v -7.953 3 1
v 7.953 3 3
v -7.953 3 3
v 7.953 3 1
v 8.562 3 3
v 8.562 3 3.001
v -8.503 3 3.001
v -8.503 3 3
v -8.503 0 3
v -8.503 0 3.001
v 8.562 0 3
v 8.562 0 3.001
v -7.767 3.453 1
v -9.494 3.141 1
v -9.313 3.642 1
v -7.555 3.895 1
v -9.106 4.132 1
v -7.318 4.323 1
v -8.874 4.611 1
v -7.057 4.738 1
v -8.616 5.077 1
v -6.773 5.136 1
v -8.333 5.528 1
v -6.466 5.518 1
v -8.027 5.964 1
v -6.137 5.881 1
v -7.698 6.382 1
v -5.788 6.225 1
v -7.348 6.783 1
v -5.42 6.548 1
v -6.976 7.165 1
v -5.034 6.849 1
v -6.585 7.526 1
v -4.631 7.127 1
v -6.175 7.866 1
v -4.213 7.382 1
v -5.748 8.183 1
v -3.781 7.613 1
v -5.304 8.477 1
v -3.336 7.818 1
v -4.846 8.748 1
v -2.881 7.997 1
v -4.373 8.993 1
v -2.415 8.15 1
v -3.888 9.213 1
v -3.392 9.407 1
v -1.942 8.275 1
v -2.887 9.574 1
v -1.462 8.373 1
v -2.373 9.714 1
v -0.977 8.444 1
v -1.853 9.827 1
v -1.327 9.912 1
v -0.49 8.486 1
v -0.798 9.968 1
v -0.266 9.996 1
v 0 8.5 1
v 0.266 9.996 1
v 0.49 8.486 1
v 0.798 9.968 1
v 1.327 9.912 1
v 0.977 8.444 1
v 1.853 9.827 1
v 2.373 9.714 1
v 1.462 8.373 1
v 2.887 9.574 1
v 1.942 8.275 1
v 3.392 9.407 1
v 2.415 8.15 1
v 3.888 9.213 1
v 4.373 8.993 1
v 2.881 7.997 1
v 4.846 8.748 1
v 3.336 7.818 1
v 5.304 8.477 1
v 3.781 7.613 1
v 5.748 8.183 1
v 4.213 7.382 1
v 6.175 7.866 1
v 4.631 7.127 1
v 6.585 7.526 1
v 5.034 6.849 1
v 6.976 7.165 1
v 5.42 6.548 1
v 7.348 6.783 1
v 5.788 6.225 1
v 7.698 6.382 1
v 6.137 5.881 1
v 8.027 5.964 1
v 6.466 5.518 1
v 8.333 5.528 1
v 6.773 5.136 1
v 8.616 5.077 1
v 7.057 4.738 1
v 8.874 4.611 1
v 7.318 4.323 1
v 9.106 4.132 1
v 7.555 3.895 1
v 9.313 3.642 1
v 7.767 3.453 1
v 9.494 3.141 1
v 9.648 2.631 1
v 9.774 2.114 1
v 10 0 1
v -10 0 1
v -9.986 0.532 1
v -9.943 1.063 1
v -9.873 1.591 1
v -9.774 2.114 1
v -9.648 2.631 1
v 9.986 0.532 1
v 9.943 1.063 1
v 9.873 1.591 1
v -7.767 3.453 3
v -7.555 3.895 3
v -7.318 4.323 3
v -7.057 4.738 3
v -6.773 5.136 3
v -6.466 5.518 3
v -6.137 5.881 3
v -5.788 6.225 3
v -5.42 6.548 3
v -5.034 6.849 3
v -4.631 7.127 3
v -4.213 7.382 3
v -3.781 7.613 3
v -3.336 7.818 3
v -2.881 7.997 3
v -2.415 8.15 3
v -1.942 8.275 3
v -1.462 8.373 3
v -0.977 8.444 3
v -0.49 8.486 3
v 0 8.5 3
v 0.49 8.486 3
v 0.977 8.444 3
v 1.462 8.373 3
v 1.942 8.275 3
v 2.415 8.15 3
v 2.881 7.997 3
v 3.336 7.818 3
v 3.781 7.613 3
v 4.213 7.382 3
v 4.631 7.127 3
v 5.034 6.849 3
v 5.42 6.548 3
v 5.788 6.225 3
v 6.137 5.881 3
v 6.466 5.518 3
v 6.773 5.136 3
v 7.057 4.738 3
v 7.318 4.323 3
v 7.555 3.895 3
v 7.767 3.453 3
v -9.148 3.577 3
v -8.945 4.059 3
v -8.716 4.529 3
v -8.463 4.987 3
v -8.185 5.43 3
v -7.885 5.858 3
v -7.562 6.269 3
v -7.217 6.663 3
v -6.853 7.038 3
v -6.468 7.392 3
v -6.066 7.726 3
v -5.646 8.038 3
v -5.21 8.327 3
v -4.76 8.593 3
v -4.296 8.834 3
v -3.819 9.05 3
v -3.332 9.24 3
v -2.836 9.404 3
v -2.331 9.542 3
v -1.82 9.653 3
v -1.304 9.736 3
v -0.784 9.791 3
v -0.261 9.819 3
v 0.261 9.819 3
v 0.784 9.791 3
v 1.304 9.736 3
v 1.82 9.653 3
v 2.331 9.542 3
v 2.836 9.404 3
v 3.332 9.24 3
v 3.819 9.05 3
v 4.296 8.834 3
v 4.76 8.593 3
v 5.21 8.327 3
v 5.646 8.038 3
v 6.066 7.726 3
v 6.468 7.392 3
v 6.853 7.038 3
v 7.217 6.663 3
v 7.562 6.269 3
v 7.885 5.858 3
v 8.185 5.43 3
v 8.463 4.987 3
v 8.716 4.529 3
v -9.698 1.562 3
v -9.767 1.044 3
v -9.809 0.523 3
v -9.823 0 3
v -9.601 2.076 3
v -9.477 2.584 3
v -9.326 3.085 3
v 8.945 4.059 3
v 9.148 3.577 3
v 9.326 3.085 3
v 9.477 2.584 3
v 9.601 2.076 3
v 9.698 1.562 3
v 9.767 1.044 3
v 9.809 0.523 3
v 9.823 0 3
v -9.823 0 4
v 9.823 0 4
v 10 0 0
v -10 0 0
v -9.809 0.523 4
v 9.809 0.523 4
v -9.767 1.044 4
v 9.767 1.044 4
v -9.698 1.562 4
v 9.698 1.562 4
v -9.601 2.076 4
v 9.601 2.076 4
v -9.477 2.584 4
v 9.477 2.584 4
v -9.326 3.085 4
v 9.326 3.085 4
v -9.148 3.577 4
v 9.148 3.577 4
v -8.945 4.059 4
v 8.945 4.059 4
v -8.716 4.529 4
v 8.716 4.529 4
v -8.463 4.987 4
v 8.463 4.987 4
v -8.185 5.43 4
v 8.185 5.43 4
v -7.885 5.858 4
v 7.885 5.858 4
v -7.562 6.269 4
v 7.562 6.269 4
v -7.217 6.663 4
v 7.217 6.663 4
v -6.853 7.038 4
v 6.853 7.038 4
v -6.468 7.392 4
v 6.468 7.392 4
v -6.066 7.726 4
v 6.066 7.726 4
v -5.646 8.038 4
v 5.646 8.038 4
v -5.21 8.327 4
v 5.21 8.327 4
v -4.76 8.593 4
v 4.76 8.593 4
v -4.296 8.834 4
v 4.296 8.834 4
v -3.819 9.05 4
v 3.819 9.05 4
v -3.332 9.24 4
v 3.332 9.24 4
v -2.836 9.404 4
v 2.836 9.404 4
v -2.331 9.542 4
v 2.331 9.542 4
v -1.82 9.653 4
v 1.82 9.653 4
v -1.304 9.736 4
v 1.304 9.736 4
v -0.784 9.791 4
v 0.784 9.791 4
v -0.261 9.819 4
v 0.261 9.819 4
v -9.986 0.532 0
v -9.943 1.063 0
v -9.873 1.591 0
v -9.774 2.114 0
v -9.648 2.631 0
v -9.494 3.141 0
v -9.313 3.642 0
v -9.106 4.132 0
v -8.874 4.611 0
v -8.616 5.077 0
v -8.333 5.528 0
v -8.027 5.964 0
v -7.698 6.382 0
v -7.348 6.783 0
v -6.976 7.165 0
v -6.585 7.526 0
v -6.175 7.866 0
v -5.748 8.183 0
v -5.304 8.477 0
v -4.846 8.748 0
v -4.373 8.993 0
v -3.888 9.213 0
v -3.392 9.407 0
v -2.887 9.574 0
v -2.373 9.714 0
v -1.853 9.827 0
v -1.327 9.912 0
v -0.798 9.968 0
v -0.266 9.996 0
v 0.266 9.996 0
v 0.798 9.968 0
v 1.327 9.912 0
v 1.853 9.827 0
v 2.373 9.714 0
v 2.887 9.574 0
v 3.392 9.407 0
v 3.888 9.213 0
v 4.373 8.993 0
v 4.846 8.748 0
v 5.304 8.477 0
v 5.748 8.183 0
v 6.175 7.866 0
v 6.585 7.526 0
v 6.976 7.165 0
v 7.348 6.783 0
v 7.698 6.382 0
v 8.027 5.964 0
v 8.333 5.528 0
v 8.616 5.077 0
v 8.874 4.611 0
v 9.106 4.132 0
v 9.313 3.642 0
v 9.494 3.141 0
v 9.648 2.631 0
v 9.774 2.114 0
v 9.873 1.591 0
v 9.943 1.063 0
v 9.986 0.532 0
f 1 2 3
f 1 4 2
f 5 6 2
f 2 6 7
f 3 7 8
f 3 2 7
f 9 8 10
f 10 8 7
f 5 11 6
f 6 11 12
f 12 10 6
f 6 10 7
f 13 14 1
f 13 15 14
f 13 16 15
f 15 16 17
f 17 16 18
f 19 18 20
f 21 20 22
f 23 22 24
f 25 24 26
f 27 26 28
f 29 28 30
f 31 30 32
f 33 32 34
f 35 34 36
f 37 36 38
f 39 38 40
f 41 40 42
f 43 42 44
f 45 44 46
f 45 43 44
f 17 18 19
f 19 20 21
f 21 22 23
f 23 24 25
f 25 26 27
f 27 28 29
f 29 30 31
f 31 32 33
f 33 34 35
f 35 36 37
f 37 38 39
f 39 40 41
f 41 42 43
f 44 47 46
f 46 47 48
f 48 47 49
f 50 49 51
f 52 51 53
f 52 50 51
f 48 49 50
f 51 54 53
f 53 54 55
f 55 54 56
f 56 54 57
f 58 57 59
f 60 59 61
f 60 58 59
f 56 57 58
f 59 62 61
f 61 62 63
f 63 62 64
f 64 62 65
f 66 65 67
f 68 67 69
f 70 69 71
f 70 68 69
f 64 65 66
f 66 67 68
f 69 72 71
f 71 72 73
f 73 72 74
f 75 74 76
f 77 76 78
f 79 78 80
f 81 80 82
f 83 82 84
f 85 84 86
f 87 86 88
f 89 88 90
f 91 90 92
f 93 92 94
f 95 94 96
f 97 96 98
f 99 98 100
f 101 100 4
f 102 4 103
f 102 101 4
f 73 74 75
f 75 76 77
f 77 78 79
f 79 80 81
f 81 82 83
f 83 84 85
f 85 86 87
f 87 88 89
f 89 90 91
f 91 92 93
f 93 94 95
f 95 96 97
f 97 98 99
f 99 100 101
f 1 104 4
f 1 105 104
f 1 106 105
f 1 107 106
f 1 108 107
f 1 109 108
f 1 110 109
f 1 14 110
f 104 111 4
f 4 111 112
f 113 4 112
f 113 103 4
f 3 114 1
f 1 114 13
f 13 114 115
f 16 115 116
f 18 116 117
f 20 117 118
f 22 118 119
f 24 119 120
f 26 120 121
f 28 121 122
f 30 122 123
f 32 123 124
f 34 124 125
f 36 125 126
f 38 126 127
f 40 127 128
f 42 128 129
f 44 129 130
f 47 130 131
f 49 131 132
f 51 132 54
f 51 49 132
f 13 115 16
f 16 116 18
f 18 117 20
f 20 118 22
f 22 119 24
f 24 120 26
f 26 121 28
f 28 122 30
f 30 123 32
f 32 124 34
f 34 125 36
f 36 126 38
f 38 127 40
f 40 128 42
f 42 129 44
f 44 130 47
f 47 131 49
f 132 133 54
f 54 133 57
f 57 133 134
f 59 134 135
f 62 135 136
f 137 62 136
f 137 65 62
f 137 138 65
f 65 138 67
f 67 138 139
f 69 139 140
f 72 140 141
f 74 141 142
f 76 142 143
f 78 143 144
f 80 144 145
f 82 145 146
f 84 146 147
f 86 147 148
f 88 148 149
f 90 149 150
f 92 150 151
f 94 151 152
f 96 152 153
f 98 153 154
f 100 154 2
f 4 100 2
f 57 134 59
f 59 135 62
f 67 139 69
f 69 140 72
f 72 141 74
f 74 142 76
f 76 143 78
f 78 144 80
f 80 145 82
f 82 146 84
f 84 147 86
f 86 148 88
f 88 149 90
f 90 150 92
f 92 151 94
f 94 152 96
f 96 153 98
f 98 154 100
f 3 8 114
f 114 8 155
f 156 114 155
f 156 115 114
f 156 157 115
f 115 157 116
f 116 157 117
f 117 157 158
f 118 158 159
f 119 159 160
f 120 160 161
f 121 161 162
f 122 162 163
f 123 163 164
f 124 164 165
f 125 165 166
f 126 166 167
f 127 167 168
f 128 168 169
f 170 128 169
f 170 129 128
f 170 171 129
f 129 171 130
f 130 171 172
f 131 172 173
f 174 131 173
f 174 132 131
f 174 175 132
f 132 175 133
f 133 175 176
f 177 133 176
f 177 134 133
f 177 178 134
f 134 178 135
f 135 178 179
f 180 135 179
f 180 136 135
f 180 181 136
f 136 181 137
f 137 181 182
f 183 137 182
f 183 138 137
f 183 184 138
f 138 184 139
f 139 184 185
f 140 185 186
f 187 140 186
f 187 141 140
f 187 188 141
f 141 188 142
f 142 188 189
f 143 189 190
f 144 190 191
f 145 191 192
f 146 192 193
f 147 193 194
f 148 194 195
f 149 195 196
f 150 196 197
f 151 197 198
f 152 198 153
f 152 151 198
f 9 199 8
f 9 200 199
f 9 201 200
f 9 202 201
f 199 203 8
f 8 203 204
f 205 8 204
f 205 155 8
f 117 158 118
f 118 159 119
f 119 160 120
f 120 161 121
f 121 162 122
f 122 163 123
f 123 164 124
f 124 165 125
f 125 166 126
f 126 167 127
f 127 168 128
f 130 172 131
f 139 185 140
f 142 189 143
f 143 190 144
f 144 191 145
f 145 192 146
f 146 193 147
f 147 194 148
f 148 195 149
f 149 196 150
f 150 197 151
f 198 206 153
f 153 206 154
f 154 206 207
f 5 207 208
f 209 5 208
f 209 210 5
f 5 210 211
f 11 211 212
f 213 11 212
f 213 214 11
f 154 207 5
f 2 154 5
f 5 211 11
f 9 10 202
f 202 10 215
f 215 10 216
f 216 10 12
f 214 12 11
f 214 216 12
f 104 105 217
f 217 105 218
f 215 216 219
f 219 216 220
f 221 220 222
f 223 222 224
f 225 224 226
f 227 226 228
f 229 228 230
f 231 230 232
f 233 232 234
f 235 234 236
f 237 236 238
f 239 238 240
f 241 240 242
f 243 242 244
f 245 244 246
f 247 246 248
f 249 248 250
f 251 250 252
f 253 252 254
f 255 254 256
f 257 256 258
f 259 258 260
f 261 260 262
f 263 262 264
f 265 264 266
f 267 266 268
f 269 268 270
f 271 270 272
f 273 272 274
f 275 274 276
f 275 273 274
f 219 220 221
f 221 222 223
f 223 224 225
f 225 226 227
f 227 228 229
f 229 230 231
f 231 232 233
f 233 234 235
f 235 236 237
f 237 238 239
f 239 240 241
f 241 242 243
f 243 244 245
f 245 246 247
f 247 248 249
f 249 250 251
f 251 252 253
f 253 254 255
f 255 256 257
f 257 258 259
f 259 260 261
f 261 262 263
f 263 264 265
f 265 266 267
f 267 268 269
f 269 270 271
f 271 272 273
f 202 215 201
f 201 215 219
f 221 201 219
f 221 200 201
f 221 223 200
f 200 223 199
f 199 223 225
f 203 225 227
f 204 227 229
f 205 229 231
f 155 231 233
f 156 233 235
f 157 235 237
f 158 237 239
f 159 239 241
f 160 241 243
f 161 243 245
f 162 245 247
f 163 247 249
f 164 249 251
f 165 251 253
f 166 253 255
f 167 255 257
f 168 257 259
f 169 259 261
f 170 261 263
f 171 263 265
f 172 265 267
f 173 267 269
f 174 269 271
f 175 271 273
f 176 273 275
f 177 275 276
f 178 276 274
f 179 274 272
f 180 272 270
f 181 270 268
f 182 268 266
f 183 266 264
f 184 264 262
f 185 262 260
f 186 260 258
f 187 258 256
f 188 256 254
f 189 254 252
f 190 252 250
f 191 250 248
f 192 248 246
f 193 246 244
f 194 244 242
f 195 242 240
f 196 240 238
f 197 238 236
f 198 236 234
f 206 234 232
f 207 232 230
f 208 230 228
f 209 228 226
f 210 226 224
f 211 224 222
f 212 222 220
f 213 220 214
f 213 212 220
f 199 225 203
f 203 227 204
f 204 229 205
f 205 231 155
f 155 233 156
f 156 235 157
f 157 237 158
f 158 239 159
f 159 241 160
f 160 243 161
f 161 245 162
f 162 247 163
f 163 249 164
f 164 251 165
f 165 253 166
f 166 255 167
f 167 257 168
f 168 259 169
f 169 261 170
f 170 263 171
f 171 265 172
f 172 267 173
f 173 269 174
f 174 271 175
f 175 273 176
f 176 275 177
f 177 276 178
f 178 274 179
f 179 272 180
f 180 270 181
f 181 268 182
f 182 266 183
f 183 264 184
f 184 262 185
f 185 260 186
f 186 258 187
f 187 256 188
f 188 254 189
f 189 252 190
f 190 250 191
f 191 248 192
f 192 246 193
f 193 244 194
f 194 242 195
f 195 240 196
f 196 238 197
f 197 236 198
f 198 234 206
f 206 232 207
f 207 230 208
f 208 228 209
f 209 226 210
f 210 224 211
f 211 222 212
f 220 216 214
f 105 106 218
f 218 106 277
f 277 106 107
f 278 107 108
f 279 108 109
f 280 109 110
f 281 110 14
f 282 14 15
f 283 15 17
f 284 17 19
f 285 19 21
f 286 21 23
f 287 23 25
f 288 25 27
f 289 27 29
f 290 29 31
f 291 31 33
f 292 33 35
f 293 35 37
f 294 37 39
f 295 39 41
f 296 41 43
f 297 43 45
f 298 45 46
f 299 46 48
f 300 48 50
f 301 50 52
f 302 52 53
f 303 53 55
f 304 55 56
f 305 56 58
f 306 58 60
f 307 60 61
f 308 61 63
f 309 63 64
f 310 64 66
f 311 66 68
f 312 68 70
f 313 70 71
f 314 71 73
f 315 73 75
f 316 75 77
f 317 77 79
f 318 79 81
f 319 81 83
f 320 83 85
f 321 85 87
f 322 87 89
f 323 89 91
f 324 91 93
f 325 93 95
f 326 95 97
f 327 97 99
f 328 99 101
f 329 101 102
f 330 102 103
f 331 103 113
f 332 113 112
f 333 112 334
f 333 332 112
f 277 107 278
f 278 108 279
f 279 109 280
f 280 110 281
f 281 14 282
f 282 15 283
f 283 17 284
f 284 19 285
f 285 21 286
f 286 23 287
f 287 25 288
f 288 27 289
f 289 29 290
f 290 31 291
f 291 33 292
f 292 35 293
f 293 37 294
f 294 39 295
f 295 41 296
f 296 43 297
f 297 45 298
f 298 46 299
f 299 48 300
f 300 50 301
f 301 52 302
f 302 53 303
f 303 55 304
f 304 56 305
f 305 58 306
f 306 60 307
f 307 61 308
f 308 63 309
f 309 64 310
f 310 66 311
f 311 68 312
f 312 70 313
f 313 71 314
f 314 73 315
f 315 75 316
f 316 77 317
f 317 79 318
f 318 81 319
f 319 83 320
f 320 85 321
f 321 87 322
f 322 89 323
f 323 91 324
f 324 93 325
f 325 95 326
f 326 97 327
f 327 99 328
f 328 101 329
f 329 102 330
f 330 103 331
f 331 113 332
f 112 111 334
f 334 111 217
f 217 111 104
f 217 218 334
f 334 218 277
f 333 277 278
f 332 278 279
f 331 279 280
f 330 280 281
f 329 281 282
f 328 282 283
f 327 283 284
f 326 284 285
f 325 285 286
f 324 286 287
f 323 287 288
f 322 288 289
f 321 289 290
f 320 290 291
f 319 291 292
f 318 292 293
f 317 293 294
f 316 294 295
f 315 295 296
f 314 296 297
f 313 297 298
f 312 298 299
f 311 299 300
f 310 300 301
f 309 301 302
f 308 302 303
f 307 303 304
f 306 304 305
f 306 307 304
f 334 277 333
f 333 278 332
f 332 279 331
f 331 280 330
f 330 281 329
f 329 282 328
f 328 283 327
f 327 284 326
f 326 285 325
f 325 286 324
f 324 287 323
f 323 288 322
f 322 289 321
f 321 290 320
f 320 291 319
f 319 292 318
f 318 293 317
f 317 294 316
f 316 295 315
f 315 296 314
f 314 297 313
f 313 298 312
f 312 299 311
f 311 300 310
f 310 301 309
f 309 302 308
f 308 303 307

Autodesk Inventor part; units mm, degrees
ref_plane "YZ Plane" through (0, 0, 0) normal (1, 0, 0) x (0, 1, 0)
ref_plane "XZ Plane" through (0, 0, 0) normal (0, 1, 0) x (-1, 0, 0)
ref_plane "XY Plane" through (0, 0, 0) normal (0, 0, 1) x (1, 0, 0)
sketch "Sketch1" plane through (0, 0, 0) normal (0, 0, 1) x (1, 0, 0)
  circle A0 centre (0, 0) radius 10
  dimension "d0" = 20
extrude "Extrusion1" add sketch "Sketch1" along normal blind 1
sketch "Sketch2" plane through (0, 0, 1) normal (0, 0, 1) x (1, 0, 0)
  circle A0 centre (0, 0) radius 8.5
  dimension "d3" = 17
extrude "Extrusion2" add sketch "Sketch2" along normal blind 2
sketch "Sketch3" plane through (0, 0, 3) normal (0, 0, 1) x (1, 0, 0)
  circle A0 centre (0, 0) radius 9.8227
extrude "Extrusion3" add sketch "Sketch3" along normal blind 1
sketch "Sketch4" plane through (0, 0, 4) normal (0, 0, 1) x (1, 0, 0)
  circle A0 centre (0, 0) radius 4.5
  line L0 (-3.25, 1.75) -> (3.25, 1.75)
  line L1 (3.25, 1.75) -> (3.25, -1.75)
  line L2 (3.25, -1.75) -> (-3.25, -1.75)
  line L3 (-3.25, -1.75) -> (-3.25, 1.75)
  dimension "d8" = 9
  dimension "d9" = 3.5
  dimension "d10" = 6.5
  dimension "d11" = 1.75
  dimension "d12" = 3.25
extrude "Extrusion4" add sketch "Sketch4" along normal blind 7
sketch "Sketch5" plane through (0, 0, 0) normal (0, 0, -1) x (-1, 0, 0)
  point P0 (0, 0)
sketch "Sketch6" plane through (0, 0, 11) normal (0, 0, 1) x (1, 0, 0)
  circle A0 centre (0, 0) radius 4.5
extrude "Extrusion5" cut sketch "Sketch6" against normal blind 7
sketch "Sketch7" plane through (0, 0, 4) normal (0, 0, 1) x (1, 0, 0)
  line L0 (-13.328, 0) -> (12.5041, 0)
  line L1 (12.5041, 0) -> (12.5041, -10.2387)
  line L2 (12.5041, -10.2387) -> (-13.328, -10.2387)
  line L3 (-13.328, -10.2387) -> (-13.328, 0)
  point P0 (0, 0)
extrude "Extrusion6" cut sketch "Sketch7" against normal blind 10
sketch "Sketch8" plane through (-9.8227, 0, 4) normal (0, -1, 0) x (1, 0, 0)
  line L0 (19.8227, -3) -> (-0.1773, -3) projected
  line L1 (1.3199, -0.999) -> (18.3844, -0.999)
  line L2 (18.3844, -0.999) -> (18.3844, -3)
  line L3 (18.3844, -3) -> (1.3199, -3)
  line L4 (1.3199, -3) -> (1.3199, -0.999)
  point P0 (9.8227, -4)
extrude "Extrusion7" cut sketch "Sketch8" against normal blind 3
properties part number "Top Holder"
